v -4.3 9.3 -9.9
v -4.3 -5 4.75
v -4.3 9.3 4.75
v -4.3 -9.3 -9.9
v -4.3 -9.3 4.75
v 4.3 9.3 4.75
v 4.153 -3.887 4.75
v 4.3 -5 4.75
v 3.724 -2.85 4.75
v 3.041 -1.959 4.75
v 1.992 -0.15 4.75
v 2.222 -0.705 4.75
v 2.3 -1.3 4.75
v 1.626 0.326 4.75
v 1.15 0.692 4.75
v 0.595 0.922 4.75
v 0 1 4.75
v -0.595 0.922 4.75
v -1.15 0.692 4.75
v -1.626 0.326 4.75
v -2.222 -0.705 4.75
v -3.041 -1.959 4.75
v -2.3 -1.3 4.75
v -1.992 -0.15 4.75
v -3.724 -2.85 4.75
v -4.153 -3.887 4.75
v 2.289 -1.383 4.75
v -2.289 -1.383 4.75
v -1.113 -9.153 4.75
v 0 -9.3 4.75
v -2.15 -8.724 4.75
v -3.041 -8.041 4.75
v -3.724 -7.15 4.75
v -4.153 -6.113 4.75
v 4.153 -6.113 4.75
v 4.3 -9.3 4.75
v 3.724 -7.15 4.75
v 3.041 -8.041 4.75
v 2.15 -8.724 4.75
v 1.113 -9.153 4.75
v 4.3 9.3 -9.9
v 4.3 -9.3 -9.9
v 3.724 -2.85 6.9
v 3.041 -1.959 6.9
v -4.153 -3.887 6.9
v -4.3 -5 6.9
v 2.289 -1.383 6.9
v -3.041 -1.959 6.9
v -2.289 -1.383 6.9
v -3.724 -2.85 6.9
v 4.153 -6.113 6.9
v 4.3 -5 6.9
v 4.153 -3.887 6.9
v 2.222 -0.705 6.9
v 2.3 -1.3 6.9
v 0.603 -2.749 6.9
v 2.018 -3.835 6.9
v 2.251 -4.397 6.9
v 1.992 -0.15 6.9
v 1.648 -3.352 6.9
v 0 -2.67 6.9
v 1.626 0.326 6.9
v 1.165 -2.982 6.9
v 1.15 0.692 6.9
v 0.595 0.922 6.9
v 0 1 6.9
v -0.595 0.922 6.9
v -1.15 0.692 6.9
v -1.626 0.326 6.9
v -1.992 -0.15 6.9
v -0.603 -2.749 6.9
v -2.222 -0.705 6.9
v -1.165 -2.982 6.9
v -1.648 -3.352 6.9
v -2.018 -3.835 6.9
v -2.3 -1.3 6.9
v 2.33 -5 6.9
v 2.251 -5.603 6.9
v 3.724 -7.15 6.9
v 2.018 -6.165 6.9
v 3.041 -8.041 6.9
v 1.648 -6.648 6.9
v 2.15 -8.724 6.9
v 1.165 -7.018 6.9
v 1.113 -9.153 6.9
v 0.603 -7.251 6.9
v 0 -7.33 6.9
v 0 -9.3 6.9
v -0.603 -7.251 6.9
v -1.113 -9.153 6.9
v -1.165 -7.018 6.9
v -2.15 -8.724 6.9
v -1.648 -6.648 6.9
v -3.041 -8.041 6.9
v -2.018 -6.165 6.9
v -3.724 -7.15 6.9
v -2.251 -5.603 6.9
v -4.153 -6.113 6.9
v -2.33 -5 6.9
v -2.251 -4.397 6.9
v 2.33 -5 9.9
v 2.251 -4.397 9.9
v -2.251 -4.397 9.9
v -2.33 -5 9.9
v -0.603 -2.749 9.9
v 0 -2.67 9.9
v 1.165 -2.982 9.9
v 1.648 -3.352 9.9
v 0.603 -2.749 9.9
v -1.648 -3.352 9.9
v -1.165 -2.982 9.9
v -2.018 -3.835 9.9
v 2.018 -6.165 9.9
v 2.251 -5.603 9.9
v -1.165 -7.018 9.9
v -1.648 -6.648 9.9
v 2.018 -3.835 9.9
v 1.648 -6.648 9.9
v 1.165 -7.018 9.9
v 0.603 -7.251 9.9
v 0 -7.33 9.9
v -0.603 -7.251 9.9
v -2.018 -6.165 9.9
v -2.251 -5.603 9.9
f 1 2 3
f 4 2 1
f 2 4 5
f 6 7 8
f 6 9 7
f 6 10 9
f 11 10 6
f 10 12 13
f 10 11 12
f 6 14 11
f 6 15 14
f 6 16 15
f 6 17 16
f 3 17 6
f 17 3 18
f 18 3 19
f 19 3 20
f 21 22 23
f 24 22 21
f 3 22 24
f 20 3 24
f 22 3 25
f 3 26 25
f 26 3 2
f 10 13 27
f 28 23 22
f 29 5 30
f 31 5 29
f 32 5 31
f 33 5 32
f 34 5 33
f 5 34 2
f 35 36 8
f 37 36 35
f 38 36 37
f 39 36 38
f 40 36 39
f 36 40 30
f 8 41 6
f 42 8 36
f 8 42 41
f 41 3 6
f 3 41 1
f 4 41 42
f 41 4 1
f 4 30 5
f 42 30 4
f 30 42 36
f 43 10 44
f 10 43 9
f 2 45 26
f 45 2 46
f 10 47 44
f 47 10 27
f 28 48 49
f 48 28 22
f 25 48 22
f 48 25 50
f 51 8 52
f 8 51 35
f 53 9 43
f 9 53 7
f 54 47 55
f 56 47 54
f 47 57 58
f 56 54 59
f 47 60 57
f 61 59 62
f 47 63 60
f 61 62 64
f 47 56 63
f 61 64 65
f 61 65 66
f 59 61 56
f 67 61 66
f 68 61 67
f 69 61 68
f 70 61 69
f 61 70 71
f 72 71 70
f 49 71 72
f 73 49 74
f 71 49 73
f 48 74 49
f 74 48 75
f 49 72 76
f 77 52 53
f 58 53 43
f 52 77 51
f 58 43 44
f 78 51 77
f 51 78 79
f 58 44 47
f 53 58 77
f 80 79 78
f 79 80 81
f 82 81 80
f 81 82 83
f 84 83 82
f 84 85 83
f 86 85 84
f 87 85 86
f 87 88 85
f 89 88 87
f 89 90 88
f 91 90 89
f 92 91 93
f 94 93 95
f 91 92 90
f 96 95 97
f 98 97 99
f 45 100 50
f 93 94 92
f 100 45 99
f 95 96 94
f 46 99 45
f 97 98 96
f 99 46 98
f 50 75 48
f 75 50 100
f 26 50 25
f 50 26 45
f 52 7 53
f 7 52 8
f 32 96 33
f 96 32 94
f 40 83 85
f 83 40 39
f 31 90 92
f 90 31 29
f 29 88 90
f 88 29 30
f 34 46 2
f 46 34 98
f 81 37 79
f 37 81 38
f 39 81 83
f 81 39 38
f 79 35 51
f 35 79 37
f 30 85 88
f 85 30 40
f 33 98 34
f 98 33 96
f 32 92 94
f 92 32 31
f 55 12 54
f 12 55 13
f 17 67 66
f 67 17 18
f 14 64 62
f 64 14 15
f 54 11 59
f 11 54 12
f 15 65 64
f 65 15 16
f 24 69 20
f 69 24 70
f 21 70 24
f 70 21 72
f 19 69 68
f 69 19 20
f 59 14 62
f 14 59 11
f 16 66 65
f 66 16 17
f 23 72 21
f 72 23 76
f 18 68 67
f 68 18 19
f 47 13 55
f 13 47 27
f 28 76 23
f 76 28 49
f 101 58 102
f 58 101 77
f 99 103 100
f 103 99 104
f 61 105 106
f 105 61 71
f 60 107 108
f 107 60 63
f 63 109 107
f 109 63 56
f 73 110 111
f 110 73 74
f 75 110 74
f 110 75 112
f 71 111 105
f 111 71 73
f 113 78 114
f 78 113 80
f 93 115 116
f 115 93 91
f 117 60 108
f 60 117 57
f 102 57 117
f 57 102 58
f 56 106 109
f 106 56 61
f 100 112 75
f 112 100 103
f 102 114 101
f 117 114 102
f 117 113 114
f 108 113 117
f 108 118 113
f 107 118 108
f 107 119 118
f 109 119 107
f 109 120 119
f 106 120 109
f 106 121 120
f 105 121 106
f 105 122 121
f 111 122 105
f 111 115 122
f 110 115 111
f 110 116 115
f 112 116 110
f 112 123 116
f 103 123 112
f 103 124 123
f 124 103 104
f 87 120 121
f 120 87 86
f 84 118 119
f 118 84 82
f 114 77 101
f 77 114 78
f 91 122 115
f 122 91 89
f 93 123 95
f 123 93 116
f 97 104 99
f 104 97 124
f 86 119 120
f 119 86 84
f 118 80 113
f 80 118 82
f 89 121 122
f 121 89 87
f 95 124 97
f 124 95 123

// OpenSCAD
// file: Config.scad
//Parameters for 12g servo
$fn = 24;
//x,y,z => l,w,h

tap_r = 0.85;
hole_r = 1.0;

servo_l         = 12;  // was 12
servo_w         = 24;  // was 23
body_h          = 20.80;

servo_h         = 27; //not used in code was 27

wing_w          = 4.5;
wing_h          = 2.33;
wing_place      = 16.3;   
hole_offset     = 2.2;    //not checked
mount_hole_r    = 2/2;
mount_slot      = 1;

servo_ww        = servo_w+wing_w*2; // not used in code but is handy number

hub_h           = 4;
small_hub_r     = 6.15/2;  
horn_r          = 4.66/2;
horn_h          = 3;

wire_l          = 4;
wire_w          = 1.5;
wire_h          = 1;
wire_place      = 4.8;

servo_full_w    = servo_w+wing_w*2;

rad = 2;




//Parameters for 5g servo

servo5_l         = 8.6; 
servo5_w         = 18.6; 
body5_h          = 14.65;


hub5_h = 2.15;
small_hub5_r = 4.6/2;  
horn5_r = 4.66/2;
horn5_h = 3;

servo5_h         = body5_h+hub5_h+horn5_h;

mount_x = servo5_l + 2;
mount_y = servo5_w + 2;
mount_round = 1;
servo_tol = 0.2;
servo5_x     = servo5_l + servo_tol*2; //~12
servo5_y     = servo5_w + servo_tol*8; //~23
// main file
include <Config.scad>

servo_5g();


$fn = 24;
//x,y,z => l,w,h


module servo_5g() {
  
    translate([-servo5_l/2, -servo5_w/2, -body5_h/2-hub5_h/2-horn5_h/2]) {
    
        color("white") 
        translate([servo5_l/2,servo5_l/2,body5_h+hub5_h])
        cylinder(r=horn5_r,h=horn5_h);
        
        color("deepSkyBlue",.7) //deepSkyBlue
        union() {
            cube([servo5_l,servo5_w,body5_h]);
            translate([servo5_l/2,servo5_l/2,body5_h])
            cylinder(r=servo5_l/2,h=hub5_h);
            translate([servo5_l/2,servo5_l/2+3.7,body5_h])
            cylinder(r=small_hub5_r,h=hub5_h);
            
        }
    }
}
